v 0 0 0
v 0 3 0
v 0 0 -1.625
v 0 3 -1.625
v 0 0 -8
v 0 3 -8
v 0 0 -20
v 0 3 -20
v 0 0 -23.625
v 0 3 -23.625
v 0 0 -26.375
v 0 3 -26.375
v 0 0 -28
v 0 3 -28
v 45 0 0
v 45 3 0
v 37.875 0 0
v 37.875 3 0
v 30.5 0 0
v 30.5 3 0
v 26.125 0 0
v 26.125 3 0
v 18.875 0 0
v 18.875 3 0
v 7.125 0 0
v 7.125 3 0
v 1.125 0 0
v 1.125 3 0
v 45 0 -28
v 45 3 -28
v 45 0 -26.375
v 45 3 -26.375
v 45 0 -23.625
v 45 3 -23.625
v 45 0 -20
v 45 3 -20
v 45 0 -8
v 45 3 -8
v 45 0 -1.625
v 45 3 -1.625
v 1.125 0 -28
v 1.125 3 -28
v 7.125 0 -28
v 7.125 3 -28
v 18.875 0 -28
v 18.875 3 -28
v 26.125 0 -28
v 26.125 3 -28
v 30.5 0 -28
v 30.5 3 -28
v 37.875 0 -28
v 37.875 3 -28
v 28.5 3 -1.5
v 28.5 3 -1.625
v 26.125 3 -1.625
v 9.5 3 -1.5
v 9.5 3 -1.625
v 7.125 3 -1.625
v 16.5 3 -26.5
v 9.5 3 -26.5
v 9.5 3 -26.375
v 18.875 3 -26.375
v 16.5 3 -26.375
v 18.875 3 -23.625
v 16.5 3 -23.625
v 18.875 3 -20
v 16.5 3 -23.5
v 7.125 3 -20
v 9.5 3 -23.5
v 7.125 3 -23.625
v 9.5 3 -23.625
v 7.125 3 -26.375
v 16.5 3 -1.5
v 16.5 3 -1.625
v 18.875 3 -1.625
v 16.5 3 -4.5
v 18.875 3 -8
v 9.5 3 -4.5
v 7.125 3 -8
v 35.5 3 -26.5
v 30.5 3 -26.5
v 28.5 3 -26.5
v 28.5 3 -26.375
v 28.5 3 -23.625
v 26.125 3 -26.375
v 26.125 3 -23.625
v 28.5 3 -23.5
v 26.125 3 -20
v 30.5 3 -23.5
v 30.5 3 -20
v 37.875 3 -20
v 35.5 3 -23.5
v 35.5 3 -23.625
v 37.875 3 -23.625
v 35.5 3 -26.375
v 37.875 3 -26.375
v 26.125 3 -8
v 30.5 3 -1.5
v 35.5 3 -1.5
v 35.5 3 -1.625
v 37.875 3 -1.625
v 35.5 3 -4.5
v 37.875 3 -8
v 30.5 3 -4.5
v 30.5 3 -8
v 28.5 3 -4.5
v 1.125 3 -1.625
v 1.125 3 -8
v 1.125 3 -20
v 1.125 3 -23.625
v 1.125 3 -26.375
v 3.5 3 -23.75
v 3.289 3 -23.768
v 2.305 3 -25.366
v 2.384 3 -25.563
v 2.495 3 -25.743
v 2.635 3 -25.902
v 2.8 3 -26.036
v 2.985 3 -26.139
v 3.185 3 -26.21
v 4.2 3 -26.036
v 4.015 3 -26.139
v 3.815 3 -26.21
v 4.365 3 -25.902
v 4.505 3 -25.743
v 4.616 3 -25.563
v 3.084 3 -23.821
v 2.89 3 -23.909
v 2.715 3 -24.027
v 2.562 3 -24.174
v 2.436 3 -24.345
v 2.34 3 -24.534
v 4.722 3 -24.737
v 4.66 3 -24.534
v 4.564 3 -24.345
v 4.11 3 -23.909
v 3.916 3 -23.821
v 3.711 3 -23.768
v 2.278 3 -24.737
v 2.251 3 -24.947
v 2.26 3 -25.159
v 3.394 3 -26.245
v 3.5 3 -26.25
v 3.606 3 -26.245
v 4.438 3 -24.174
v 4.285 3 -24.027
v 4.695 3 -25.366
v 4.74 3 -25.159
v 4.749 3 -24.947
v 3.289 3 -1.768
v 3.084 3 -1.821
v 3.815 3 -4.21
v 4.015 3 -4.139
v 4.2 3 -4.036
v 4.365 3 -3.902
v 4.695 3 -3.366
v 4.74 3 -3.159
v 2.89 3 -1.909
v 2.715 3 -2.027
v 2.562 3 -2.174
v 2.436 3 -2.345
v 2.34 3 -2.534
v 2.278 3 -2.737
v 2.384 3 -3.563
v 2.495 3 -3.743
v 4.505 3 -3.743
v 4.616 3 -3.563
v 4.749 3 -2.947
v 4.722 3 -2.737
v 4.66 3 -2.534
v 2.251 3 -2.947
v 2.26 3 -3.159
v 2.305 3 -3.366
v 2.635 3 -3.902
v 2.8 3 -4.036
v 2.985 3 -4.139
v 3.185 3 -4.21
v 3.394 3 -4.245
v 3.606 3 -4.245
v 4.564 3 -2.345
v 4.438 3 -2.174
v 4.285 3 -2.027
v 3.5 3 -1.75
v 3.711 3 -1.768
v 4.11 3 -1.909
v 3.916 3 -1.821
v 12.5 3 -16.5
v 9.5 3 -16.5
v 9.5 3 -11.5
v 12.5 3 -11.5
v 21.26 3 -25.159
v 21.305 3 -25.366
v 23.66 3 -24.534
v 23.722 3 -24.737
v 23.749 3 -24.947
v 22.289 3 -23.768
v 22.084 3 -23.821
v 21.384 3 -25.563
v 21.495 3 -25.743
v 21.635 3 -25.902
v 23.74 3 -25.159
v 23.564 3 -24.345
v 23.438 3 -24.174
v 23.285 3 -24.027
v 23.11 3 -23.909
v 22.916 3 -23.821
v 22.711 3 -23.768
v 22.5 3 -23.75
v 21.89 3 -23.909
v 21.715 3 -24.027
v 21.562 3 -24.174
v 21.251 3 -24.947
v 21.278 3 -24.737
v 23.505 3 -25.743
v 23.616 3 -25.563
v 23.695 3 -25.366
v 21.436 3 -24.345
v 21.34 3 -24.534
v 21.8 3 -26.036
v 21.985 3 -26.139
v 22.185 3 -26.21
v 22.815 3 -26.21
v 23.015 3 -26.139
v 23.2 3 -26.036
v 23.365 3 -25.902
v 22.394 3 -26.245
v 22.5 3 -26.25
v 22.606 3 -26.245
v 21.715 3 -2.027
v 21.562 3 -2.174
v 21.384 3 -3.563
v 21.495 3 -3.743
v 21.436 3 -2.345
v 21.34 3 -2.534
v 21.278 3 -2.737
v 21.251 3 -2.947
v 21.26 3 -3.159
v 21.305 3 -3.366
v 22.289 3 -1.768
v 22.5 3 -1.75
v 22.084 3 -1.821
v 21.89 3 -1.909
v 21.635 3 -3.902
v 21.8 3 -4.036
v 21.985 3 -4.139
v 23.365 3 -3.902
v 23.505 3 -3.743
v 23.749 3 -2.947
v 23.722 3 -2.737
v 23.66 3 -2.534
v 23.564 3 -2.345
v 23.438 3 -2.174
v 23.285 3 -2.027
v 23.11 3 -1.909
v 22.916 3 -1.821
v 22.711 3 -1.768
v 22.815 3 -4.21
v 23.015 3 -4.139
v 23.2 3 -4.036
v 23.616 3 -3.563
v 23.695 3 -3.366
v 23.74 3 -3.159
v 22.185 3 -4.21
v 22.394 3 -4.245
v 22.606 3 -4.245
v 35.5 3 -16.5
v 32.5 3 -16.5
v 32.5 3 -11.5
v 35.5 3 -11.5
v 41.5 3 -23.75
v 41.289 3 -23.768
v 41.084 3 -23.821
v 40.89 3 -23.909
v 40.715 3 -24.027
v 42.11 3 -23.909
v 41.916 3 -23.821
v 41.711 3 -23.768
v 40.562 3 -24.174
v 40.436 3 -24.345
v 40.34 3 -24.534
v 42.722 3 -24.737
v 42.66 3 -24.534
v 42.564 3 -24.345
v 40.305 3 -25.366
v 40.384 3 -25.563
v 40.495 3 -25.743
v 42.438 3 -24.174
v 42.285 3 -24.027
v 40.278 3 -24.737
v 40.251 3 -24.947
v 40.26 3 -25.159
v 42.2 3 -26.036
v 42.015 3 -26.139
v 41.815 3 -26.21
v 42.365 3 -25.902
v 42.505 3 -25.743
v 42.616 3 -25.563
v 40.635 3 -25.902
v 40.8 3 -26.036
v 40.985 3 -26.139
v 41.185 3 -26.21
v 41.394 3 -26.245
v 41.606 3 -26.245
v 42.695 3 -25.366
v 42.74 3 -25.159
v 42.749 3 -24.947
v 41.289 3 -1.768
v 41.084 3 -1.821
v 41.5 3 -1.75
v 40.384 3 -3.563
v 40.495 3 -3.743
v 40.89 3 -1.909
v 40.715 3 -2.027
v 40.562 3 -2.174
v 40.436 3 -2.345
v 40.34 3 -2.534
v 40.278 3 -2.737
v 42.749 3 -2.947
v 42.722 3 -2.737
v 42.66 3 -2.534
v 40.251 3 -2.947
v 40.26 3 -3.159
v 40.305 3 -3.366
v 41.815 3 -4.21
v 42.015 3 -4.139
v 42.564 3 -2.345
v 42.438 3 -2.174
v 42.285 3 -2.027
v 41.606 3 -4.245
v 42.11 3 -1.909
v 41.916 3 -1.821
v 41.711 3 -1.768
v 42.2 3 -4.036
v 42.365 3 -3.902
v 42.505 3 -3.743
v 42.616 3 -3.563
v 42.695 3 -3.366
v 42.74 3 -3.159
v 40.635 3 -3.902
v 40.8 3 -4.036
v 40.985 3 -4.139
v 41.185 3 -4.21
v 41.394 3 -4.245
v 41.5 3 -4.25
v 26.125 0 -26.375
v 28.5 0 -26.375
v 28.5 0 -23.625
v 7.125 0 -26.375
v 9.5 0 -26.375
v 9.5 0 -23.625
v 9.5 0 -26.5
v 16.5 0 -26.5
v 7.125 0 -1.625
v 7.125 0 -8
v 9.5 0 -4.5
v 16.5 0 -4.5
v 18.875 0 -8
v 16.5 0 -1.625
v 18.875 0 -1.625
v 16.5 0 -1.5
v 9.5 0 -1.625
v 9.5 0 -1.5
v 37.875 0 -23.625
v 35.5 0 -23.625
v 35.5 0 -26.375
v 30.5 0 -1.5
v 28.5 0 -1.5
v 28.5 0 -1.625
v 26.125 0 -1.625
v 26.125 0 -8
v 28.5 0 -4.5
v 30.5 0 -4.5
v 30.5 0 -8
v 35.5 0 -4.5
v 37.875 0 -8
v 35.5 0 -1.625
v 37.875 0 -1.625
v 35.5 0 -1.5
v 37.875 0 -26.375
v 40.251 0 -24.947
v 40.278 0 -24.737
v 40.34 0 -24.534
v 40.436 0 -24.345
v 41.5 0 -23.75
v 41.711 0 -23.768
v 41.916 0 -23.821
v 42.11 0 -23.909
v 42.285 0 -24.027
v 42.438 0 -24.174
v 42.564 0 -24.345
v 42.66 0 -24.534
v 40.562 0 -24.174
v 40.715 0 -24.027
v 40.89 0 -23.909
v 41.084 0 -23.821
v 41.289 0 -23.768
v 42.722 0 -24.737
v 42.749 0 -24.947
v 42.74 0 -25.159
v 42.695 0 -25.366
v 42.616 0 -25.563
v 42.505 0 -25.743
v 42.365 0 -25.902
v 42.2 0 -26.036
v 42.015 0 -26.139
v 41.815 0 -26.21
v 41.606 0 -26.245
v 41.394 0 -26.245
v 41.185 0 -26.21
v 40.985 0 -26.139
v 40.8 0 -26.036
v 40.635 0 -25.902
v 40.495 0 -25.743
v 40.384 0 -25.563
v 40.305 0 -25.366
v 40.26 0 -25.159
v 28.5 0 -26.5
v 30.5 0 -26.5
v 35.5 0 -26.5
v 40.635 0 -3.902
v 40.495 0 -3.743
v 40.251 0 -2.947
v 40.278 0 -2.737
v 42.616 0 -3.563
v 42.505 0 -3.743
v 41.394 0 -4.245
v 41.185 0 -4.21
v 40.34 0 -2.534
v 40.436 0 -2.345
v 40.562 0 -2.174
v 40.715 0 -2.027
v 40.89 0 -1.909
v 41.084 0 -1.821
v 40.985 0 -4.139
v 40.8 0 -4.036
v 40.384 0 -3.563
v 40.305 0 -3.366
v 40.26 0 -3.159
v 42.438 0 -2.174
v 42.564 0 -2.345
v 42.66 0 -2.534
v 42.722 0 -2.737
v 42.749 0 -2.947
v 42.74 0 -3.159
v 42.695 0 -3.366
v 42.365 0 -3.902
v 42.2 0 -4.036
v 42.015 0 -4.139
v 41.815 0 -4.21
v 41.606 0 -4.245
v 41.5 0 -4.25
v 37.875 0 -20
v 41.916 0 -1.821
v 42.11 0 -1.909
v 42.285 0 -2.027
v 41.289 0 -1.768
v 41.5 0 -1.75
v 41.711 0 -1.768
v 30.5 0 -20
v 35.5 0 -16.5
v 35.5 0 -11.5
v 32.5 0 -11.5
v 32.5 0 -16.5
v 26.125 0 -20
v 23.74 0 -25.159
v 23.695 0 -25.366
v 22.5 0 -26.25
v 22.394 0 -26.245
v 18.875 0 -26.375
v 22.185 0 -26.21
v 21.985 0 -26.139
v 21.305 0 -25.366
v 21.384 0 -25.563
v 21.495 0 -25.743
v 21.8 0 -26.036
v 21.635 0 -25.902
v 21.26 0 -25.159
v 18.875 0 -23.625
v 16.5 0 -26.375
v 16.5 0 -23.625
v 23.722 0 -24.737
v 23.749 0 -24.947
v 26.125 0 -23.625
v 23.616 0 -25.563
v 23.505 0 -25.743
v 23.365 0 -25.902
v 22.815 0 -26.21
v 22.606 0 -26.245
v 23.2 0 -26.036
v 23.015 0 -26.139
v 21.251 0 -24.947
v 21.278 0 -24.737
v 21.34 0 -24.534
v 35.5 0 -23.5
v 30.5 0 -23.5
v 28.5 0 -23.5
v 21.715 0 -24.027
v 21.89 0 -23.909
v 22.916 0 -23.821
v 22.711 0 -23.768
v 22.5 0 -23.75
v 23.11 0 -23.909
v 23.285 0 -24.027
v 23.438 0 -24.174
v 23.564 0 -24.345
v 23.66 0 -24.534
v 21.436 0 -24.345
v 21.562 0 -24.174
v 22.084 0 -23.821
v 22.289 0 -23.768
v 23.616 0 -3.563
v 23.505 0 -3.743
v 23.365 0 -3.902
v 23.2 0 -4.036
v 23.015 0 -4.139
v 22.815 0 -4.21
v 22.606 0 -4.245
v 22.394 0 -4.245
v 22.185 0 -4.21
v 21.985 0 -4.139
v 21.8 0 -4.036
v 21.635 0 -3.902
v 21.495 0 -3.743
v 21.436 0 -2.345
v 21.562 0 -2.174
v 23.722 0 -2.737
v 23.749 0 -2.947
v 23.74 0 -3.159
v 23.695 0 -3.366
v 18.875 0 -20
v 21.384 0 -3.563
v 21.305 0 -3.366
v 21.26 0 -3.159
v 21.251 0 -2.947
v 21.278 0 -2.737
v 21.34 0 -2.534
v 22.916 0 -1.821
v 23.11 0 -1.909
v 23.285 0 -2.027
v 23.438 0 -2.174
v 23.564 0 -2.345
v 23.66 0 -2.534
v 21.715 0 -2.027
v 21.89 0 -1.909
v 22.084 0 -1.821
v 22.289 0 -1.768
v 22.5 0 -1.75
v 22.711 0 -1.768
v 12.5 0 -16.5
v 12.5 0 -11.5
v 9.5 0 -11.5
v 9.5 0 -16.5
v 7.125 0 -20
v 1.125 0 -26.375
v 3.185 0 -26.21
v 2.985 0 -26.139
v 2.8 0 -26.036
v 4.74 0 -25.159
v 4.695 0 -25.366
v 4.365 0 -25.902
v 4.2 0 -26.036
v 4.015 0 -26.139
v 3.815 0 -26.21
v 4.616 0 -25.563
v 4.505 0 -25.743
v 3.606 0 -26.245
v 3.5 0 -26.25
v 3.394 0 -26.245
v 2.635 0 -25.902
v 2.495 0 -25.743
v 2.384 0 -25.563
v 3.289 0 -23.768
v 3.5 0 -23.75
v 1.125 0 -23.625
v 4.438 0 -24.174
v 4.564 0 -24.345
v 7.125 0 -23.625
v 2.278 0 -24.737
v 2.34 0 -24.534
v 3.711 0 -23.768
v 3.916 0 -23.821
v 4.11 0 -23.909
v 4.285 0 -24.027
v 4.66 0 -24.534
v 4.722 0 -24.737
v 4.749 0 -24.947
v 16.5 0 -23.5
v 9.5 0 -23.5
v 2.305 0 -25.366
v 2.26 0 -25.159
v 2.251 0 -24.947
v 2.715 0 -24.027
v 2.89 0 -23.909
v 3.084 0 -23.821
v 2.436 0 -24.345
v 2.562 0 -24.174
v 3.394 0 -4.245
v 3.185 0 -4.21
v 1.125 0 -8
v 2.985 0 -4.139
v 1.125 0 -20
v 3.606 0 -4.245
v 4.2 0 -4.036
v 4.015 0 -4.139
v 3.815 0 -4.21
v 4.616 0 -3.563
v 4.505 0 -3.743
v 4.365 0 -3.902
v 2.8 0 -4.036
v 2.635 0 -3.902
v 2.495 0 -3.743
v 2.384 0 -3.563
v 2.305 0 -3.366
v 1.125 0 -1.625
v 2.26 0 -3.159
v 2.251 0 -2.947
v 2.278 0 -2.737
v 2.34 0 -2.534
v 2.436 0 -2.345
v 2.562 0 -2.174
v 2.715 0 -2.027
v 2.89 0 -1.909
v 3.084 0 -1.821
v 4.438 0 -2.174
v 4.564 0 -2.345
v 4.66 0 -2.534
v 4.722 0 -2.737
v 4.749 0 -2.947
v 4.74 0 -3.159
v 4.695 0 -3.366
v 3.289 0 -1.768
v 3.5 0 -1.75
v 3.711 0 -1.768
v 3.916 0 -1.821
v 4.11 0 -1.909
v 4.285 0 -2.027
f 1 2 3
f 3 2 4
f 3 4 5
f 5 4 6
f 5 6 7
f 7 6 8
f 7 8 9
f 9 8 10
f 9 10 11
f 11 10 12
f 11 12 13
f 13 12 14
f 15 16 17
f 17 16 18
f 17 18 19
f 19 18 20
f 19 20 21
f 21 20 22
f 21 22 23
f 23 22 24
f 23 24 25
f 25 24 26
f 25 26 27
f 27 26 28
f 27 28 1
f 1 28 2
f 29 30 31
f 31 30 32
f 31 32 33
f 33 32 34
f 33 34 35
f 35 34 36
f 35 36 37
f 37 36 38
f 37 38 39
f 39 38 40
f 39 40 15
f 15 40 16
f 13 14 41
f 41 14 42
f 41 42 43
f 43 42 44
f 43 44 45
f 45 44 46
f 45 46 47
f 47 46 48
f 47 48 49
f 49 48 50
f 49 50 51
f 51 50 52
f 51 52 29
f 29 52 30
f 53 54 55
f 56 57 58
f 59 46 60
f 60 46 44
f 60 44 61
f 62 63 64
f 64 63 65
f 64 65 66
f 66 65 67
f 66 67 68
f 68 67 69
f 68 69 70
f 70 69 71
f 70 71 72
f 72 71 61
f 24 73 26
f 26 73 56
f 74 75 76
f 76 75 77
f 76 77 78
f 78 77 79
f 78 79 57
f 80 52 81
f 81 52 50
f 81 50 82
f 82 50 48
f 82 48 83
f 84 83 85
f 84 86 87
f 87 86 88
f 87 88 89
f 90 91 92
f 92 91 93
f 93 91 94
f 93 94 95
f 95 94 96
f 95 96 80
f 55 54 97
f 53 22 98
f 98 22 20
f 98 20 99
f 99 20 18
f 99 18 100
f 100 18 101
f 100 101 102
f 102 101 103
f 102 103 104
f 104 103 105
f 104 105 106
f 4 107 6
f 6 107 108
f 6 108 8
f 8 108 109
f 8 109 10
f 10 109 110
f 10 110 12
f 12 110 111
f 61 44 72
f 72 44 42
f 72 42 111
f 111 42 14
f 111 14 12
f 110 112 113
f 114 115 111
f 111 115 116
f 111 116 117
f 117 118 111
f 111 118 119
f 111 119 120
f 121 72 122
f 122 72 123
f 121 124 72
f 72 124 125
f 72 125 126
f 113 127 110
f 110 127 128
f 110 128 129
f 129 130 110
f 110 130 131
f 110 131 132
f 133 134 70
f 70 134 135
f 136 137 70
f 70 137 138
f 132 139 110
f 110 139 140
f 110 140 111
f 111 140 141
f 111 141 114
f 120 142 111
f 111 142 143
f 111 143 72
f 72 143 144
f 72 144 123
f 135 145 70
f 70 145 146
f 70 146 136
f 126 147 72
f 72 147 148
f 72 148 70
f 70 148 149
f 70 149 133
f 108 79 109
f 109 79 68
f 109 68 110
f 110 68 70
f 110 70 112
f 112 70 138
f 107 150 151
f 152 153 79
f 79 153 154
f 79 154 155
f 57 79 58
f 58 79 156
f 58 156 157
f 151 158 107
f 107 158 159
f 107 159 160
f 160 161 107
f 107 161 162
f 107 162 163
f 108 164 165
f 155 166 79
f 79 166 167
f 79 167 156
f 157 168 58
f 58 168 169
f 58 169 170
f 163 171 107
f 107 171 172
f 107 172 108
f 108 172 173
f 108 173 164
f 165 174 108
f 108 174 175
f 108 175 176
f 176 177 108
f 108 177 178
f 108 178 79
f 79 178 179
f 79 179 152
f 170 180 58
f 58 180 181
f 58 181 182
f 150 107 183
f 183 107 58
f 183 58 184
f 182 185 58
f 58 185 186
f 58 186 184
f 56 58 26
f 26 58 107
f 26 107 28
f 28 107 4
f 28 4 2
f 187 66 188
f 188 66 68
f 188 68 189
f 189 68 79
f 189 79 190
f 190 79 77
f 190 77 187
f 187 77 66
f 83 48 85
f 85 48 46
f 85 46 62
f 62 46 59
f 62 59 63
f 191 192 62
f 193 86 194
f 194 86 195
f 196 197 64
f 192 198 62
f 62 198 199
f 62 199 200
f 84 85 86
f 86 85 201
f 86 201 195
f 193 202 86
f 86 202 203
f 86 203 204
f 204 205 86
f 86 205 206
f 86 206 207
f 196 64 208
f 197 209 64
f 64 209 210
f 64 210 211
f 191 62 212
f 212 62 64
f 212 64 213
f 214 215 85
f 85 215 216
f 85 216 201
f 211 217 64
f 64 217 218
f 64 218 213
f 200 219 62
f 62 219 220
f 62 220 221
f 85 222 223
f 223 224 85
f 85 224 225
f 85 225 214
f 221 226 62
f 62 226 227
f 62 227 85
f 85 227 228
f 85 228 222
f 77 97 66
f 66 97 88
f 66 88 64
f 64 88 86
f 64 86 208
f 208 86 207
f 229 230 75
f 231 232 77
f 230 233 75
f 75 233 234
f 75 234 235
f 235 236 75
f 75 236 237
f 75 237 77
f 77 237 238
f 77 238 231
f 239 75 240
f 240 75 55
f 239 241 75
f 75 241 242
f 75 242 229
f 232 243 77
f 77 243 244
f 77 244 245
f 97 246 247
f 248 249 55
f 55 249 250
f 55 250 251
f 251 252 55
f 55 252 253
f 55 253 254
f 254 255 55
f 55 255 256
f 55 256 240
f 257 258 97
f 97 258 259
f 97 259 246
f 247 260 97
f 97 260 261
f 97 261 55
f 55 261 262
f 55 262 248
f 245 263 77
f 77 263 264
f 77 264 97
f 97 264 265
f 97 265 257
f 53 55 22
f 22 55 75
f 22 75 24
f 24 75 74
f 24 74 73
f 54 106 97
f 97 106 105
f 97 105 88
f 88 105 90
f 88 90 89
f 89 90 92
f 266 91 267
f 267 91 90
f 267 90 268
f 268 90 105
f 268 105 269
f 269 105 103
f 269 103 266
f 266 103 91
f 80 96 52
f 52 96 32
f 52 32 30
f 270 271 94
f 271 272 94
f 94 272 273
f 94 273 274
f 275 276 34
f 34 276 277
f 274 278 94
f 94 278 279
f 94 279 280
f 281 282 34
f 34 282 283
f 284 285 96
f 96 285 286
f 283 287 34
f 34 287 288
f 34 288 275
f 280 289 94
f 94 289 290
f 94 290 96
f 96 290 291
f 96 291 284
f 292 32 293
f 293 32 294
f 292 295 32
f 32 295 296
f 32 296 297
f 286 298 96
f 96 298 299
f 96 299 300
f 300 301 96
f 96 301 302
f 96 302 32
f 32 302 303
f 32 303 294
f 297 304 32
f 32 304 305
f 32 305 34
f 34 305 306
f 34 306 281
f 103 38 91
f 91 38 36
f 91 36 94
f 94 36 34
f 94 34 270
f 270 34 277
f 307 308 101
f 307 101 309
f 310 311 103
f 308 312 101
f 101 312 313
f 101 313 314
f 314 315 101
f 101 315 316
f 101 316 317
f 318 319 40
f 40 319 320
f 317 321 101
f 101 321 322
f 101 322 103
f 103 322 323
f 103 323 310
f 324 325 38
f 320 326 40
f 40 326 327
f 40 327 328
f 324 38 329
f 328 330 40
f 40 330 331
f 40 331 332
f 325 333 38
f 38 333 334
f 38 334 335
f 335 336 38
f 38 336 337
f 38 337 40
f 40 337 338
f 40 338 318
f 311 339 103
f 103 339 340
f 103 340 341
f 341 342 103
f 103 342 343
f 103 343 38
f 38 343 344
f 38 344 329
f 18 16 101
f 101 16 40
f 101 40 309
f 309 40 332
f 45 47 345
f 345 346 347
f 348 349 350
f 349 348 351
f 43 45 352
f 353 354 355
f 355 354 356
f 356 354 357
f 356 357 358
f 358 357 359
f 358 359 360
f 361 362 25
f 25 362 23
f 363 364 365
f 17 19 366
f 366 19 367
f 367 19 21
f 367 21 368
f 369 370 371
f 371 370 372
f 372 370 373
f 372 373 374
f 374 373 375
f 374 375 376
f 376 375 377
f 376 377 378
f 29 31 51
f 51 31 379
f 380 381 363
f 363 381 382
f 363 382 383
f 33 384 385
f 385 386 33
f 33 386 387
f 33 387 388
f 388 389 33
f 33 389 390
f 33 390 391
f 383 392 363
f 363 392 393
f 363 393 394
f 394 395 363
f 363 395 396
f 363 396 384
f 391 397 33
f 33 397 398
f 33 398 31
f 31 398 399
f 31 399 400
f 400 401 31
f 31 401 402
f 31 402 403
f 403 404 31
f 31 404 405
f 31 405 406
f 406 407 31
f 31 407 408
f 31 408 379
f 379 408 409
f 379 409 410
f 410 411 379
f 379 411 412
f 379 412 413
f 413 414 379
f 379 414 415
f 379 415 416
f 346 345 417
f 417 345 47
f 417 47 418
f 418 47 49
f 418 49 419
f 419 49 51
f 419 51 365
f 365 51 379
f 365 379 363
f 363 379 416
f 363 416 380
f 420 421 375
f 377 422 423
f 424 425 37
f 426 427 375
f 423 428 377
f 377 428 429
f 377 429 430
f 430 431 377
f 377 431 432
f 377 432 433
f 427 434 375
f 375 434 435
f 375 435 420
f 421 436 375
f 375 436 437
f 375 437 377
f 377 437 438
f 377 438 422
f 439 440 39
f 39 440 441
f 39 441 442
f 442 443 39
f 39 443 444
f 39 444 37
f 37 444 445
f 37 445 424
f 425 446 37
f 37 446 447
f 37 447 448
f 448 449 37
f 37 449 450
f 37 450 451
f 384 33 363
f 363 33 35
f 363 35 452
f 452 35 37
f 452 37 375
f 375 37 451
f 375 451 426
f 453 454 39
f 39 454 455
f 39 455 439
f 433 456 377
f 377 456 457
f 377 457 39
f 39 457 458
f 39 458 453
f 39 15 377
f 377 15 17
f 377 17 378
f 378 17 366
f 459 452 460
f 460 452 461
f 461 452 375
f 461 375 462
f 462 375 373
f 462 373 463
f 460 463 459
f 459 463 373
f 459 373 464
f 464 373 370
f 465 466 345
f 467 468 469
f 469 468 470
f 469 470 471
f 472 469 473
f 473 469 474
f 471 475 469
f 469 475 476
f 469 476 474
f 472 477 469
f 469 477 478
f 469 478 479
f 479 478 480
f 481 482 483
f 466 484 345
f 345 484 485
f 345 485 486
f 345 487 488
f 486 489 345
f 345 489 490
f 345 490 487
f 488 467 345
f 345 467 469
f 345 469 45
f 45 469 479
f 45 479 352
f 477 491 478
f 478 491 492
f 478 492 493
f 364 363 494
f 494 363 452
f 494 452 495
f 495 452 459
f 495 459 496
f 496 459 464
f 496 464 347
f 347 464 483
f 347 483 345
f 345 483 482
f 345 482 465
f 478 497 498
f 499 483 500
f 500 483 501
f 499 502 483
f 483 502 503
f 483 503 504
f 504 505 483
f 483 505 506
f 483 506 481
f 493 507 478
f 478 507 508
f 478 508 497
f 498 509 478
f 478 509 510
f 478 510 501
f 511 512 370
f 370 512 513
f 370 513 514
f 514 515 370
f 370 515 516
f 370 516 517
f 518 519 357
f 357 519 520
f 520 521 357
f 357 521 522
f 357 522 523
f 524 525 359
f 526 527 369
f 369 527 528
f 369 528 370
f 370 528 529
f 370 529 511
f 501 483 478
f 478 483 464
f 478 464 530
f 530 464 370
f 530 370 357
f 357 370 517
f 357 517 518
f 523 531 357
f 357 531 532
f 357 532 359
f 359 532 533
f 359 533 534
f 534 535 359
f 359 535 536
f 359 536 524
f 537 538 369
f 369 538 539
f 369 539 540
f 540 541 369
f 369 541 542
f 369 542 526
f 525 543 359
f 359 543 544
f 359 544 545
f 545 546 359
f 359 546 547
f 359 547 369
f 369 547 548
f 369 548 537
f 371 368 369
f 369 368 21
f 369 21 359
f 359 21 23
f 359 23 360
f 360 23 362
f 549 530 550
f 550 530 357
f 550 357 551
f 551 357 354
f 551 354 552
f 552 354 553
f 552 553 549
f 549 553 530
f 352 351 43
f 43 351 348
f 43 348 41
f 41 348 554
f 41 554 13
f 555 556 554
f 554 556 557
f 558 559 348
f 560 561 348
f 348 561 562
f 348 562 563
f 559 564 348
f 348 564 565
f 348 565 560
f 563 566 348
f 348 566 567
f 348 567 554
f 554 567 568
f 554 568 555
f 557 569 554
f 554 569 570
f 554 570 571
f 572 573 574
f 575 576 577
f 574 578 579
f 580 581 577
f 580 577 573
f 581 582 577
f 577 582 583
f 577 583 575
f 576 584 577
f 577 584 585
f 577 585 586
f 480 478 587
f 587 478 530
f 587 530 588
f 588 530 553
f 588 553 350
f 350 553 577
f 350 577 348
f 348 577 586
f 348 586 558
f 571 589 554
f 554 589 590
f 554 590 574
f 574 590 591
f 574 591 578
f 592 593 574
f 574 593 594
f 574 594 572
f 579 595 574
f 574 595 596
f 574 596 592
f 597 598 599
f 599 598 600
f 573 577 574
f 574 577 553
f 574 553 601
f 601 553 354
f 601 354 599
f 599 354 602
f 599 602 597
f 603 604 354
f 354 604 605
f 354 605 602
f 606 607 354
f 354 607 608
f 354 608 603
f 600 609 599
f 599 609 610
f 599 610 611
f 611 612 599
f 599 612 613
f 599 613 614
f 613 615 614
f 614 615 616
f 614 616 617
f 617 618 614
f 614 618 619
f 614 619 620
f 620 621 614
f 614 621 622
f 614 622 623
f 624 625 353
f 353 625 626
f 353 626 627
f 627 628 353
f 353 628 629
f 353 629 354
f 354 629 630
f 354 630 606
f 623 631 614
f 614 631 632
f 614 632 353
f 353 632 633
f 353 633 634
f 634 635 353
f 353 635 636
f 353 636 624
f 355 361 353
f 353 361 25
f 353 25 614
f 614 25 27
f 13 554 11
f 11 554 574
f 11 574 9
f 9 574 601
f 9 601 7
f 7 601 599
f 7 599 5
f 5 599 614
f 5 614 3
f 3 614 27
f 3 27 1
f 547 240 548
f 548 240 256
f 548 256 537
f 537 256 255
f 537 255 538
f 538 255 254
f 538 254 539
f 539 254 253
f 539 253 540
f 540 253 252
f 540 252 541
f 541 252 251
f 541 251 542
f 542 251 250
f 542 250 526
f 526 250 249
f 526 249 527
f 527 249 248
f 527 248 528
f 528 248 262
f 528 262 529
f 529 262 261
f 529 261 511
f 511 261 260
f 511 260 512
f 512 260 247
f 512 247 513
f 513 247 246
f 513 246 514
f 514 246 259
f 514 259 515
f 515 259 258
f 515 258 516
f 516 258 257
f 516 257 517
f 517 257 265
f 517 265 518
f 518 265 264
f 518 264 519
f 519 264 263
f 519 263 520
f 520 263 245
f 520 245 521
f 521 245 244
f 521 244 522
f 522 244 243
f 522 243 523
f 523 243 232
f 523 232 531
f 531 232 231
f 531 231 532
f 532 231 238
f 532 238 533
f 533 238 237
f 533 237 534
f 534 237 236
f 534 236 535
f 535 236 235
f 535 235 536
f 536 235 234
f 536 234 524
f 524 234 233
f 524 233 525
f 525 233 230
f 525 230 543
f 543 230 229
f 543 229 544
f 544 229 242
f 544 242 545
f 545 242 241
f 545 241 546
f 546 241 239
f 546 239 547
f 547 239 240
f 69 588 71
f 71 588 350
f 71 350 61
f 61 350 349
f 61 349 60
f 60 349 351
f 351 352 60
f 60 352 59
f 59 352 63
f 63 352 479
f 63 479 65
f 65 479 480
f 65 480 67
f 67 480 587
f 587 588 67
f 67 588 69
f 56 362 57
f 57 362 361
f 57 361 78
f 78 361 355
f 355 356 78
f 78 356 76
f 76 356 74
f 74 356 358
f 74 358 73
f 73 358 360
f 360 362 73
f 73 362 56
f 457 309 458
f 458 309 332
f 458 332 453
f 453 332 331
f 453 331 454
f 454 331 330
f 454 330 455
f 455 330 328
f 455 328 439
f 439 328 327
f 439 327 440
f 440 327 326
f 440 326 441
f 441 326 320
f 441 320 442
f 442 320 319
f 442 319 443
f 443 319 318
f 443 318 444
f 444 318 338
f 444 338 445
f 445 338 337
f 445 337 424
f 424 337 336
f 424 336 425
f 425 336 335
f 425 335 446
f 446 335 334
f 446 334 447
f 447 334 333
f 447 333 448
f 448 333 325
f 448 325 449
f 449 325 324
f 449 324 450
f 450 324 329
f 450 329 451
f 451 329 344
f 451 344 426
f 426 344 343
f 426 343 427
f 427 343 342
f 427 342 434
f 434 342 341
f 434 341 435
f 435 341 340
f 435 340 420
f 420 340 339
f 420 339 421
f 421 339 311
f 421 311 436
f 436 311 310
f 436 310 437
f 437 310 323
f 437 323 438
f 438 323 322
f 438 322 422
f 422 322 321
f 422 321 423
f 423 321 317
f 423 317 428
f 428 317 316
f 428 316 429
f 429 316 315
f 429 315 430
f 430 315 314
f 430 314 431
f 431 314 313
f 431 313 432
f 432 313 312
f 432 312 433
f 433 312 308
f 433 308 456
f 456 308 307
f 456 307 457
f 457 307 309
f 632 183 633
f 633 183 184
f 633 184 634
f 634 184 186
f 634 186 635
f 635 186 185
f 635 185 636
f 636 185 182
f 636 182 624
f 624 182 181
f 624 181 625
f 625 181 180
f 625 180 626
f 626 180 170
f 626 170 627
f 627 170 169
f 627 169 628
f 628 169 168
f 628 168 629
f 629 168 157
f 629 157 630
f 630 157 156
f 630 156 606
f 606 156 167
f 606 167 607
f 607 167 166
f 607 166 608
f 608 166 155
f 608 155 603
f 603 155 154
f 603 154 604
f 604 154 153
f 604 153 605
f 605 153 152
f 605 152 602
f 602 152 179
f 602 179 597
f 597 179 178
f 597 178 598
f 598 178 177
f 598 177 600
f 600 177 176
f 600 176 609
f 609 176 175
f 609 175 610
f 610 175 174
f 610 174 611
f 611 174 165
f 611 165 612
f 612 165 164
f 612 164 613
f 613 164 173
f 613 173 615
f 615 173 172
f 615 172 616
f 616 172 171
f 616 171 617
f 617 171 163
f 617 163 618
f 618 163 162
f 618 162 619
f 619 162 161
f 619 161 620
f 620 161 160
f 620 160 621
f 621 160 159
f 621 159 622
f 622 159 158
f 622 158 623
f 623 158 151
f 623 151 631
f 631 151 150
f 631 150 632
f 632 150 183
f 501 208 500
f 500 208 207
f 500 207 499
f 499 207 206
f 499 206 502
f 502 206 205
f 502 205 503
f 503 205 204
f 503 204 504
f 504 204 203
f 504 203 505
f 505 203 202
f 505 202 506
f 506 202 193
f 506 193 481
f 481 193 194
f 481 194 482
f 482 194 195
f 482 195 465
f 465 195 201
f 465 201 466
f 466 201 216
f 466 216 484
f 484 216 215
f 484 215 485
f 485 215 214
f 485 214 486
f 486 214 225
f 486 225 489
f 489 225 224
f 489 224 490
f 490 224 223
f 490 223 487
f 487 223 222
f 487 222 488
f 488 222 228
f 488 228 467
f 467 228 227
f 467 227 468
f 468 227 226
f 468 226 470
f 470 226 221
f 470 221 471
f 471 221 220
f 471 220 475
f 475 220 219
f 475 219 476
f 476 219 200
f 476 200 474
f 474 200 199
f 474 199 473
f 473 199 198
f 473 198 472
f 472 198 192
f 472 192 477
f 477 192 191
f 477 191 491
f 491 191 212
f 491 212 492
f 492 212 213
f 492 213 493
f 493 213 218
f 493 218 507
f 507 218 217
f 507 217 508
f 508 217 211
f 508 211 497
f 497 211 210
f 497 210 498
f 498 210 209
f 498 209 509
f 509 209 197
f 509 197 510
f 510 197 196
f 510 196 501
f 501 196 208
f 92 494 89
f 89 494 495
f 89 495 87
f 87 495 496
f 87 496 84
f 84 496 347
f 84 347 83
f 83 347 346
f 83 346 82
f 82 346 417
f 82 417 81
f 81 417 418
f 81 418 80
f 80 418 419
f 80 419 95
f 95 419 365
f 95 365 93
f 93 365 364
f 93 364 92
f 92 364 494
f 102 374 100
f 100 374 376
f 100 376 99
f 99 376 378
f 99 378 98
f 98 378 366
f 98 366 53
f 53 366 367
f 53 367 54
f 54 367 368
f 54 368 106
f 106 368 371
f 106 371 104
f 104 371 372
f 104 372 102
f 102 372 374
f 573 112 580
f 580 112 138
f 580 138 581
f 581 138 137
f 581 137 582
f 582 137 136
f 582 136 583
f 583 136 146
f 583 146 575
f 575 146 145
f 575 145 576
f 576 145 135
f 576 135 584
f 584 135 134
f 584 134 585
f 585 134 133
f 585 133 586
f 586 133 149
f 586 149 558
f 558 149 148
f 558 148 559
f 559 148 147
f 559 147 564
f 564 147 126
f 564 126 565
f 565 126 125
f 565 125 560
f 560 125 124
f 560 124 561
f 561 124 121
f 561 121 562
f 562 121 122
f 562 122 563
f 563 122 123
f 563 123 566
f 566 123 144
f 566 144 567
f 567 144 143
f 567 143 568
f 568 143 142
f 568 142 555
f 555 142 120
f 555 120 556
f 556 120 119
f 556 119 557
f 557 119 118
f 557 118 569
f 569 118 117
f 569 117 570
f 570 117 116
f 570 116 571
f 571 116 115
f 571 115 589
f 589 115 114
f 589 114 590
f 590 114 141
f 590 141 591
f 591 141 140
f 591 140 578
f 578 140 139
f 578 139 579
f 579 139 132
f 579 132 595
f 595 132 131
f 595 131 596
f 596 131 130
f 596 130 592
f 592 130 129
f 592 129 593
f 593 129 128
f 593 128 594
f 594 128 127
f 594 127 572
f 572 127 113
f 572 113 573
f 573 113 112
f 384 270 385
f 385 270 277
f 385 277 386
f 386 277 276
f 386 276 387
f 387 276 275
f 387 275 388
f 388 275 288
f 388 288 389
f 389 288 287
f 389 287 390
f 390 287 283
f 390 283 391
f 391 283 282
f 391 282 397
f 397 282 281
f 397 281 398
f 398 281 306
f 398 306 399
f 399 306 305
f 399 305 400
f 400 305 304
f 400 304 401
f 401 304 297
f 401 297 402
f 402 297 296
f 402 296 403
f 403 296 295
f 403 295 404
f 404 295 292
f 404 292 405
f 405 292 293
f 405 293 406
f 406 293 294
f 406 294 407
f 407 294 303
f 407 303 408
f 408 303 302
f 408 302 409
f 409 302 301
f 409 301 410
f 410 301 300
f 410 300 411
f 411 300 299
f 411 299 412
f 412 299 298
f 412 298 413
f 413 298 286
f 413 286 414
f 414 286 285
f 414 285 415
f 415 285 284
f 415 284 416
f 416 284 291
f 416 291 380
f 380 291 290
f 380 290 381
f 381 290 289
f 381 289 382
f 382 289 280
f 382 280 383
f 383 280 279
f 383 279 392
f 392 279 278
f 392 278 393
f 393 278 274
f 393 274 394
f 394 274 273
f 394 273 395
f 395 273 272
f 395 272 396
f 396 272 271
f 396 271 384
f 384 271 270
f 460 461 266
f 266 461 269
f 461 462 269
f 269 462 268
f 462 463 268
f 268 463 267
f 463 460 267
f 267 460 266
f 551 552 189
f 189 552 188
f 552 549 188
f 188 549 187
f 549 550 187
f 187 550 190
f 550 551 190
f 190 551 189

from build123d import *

# Parameters (mm, degrees)
SKETCH_1_W          = 45
SKETCH_1_H          = 28
EXTRUDE_1_DEPTH     = 3
SKETCH_2_R          = 1.25
SKETCH_2_W          = 7
SKETCH_2_H          = 3
CUT_EXTRUDE_1_DEPTH = 4
SKETCH_3_W          = 3
SKETCH_3_H          = 5
CUT_EXTRUDE_2_DEPTH = 4


with BuildPart() as part:
    # 스케치1 → 보스-돌출1 (new body)
    with BuildSketch(Plane(origin=(0, 0, 0), x_dir=(1, 0, 0), z_dir=(0, 1, 0))):
        with Locations((22.5, 14)):
            Rectangle(SKETCH_1_W, SKETCH_1_H)
    extrude(amount=EXTRUDE_1_DEPTH)

    # 스케치2 → 컷-돌출1 (cut, through all)
    with BuildSketch(Plane(origin=(0, 3, 0), x_dir=(1, 0, 0), z_dir=(0, 1, 0))):
        with Locations((22.5, 3)):
            Circle(SKETCH_2_R)
        with Locations((22.5, 25)):
            Circle(SKETCH_2_R)
        with Locations((3.5, 3)):
            Circle(SKETCH_2_R)
        with Locations((41.5, 3)):
            Circle(SKETCH_2_R)
        with Locations((41.5, 25)):
            Circle(SKETCH_2_R)
        with Locations((3.5, 25)):
            Circle(SKETCH_2_R)
        with Locations((32, 3)):
            Rectangle(SKETCH_2_W, SKETCH_2_H)
        with Locations((13, 3)):
            Rectangle(SKETCH_2_W, SKETCH_2_H)
        with Locations((32, 25)):
            Rectangle(SKETCH_2_W, SKETCH_2_H)
        with Locations((13, 25)):
            Rectangle(SKETCH_2_W, SKETCH_2_H)
    extrude(amount=-CUT_EXTRUDE_1_DEPTH, mode=Mode.SUBTRACT)

    # 스케치3 → 컷-돌출2 (cut, through all)
    with BuildSketch(Plane(origin=(0, 3, 0), x_dir=(1, 0, 0), z_dir=(0, 1, 0))):
        with Locations((11, 14)):
            Rectangle(SKETCH_3_W, SKETCH_3_H)
        with Locations((34, 14)):
            Rectangle(SKETCH_3_W, SKETCH_3_H)
    extrude(amount=-CUT_EXTRUDE_2_DEPTH, mode=Mode.SUBTRACT)


solid = part.part
